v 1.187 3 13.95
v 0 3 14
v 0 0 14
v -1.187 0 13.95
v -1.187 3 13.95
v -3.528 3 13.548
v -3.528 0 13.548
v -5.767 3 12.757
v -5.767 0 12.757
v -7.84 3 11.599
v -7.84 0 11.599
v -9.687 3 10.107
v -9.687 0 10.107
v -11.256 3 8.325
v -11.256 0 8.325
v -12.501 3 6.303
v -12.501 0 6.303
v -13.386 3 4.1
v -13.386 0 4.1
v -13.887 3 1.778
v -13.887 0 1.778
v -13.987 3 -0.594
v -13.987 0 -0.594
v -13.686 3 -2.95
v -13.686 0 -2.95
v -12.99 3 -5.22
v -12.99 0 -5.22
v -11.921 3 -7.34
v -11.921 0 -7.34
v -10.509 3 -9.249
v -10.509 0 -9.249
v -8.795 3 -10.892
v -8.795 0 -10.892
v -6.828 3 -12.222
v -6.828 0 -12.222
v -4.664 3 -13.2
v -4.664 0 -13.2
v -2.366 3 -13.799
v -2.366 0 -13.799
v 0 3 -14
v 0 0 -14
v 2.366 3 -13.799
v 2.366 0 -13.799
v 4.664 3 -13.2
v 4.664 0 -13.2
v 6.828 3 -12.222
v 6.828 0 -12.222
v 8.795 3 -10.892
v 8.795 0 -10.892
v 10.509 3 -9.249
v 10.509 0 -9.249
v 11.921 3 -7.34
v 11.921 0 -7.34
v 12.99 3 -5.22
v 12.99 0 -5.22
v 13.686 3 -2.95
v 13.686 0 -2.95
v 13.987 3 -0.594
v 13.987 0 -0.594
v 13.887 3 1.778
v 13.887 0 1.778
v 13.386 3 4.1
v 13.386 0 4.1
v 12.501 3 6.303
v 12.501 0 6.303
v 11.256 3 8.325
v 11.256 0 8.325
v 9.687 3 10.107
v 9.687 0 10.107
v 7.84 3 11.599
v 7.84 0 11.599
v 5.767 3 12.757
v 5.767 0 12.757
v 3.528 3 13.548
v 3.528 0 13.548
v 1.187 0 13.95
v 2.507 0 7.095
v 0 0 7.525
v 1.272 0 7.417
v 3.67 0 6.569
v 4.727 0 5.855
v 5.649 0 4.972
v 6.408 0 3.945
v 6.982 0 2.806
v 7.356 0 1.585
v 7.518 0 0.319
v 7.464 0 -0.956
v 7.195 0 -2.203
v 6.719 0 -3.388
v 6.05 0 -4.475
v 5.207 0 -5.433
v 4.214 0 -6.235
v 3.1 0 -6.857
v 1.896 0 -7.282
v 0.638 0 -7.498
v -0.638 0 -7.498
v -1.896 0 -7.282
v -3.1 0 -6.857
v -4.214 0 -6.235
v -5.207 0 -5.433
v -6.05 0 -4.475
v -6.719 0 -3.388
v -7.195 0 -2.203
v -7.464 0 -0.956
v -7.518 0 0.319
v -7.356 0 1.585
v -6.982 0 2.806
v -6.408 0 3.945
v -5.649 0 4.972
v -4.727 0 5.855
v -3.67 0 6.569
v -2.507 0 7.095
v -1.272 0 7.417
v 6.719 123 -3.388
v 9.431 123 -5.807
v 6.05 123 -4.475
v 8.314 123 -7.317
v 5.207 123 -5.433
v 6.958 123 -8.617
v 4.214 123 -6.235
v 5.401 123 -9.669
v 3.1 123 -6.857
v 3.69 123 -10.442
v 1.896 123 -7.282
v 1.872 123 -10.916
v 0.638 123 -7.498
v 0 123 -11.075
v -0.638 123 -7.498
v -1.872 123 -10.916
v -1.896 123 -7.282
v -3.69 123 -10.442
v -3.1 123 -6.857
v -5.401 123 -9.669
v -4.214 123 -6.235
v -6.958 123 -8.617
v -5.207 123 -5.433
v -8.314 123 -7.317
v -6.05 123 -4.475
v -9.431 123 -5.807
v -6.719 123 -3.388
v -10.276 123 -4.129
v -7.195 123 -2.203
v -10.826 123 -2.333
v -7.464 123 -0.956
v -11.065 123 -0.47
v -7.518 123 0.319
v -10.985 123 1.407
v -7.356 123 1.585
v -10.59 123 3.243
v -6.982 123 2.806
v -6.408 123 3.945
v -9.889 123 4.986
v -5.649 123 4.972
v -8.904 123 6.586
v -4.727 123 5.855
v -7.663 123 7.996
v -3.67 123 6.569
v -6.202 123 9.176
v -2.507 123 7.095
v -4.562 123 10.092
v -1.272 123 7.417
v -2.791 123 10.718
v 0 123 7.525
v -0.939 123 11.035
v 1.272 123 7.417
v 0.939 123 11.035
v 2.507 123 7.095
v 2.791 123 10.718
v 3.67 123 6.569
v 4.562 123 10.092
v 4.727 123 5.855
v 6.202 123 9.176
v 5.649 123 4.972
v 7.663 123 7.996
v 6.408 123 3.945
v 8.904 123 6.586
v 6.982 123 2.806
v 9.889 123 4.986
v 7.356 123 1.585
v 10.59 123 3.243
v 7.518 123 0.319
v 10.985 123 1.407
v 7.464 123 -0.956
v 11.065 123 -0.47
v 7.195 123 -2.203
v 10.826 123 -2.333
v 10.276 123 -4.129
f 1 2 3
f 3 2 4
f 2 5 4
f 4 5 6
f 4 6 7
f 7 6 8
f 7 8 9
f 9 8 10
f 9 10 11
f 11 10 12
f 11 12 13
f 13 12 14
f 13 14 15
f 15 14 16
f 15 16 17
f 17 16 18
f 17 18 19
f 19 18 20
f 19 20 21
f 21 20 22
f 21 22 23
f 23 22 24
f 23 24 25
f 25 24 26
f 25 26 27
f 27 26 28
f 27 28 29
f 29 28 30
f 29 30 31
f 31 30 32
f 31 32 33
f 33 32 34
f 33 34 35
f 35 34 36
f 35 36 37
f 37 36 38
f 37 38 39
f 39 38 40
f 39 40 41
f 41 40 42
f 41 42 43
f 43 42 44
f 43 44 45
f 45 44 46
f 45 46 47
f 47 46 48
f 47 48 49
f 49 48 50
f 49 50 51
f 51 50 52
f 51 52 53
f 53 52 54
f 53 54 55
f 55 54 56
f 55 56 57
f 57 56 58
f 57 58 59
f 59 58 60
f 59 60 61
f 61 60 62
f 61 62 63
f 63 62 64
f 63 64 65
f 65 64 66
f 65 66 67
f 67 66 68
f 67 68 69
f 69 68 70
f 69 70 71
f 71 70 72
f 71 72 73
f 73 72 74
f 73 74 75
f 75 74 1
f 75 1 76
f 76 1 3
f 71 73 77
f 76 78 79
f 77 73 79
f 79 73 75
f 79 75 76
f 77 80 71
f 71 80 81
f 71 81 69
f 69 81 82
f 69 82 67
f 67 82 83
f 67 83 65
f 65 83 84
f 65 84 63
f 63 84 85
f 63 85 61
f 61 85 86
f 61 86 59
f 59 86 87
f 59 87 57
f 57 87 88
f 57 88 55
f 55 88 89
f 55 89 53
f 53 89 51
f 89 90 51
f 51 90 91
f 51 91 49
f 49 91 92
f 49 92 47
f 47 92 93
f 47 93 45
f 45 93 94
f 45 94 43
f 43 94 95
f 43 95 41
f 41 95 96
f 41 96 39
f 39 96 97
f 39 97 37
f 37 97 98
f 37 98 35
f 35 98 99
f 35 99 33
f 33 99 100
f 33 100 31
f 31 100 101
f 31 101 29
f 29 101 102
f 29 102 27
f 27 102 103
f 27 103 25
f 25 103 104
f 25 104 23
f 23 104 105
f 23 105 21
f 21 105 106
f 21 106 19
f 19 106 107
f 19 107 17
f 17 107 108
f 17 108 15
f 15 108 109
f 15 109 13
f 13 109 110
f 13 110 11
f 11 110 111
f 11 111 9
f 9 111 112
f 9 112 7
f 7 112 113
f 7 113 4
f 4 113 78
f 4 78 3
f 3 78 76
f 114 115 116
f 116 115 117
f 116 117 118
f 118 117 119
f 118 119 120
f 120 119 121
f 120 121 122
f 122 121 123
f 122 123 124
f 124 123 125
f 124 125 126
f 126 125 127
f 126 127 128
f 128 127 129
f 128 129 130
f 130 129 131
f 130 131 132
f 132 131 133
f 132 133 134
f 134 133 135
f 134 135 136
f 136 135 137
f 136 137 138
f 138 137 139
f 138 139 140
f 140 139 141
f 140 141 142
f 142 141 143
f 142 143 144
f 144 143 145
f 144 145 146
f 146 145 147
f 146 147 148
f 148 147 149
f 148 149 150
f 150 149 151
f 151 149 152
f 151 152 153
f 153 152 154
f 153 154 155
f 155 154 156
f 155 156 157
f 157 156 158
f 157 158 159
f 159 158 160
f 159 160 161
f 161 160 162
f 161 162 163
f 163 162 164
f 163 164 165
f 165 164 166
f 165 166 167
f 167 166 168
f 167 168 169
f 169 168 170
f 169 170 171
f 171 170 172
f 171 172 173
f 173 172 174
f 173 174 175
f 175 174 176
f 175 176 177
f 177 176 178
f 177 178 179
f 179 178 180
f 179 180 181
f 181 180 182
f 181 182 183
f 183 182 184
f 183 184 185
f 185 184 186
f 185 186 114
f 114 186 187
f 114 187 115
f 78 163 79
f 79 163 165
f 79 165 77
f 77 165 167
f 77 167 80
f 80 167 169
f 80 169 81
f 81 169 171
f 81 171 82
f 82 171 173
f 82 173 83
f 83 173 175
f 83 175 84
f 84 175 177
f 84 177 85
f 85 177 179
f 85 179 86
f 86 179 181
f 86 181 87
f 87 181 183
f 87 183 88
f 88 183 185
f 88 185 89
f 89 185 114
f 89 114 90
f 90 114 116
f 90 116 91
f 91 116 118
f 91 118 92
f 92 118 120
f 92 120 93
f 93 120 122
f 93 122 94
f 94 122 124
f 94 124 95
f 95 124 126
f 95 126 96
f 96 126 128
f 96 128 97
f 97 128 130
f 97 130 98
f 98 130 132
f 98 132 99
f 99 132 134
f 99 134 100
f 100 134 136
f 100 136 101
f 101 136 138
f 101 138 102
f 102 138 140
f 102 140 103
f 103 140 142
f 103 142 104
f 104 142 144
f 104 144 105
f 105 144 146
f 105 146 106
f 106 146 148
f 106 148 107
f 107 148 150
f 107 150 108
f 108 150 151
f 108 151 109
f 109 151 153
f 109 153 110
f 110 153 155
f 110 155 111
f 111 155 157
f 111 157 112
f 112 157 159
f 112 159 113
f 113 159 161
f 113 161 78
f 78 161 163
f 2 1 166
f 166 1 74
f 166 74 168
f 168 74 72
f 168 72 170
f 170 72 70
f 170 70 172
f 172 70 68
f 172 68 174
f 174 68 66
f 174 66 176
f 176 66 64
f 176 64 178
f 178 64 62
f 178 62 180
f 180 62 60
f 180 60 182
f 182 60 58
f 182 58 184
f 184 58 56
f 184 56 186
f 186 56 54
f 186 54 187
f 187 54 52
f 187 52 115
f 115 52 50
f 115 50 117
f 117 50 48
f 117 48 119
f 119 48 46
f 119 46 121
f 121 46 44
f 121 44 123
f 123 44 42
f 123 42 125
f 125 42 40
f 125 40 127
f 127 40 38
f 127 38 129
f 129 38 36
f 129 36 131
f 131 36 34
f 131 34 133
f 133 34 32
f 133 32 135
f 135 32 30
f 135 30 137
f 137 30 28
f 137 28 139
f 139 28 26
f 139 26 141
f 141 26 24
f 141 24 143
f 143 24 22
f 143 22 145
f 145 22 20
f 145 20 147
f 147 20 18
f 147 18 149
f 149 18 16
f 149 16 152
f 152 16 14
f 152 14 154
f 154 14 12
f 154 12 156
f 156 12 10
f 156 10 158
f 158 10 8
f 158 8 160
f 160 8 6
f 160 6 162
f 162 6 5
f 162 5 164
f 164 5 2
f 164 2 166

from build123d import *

# Parameters (mm, degrees)
CROQUIS1_R              = 14
SALIENTE_EXTRUIR1_DEPTH = 3
CROQUIS2_R              = 11.075
SALIENTE_EXTRUIR2_DEPTH = 120
CROQUIS3_R              = 7.525
CORTAR_EXTRUIR2_DEPTH   = 125.583305463


with BuildPart() as part:
    # Croquis1 → Saliente-Extruir1 (new body)
    with BuildSketch(Plane(origin=(0, 0, 0), x_dir=(1, 0, 0), z_dir=(0, 1, 0))):
        with Locations(Location((0, 0, 0), (0, 0, 270))):
            Circle(CROQUIS1_R)
    extrude(amount=SALIENTE_EXTRUIR1_DEPTH)

    # Croquis2 → Saliente-Extruir2 (add)
    with BuildSketch(Plane(origin=(0, 3, 0), x_dir=(1, 0, 0), z_dir=(0, 1, 0))):
        with Locations(Location((0, 0, 0), (0, 0, 270))):
            Circle(CROQUIS2_R)
    extrude(amount=SALIENTE_EXTRUIR2_DEPTH)

    # Croquis3 → Cortar-Extruir2 (cut, through all)
    with BuildSketch(Plane(origin=(0, 123, 0), x_dir=(1, 0, 0), z_dir=(0, 1, 0))):
        with Locations(Location((0, 0, 0), (0, 0, 270))):
            Circle(CROQUIS3_R)
    extrude(amount=-CORTAR_EXTRUIR2_DEPTH, mode=Mode.SUBTRACT)

    # Croquis4 → Revolución1 (revolve)
    with BuildSketch(Plane.XY, mode=Mode.PRIVATE) as revoluci_n1_sk:
        Polygon((14, 3), (11.075, 3), (11.075, 123), align=None)
    revolve(revoluci_n1_sk.sketch.rotate(Axis((0, 0, 0), (0, 1, 0)), 90), axis=Axis((0, 0, 0), (0, 1, 0)))


solid = part.part
